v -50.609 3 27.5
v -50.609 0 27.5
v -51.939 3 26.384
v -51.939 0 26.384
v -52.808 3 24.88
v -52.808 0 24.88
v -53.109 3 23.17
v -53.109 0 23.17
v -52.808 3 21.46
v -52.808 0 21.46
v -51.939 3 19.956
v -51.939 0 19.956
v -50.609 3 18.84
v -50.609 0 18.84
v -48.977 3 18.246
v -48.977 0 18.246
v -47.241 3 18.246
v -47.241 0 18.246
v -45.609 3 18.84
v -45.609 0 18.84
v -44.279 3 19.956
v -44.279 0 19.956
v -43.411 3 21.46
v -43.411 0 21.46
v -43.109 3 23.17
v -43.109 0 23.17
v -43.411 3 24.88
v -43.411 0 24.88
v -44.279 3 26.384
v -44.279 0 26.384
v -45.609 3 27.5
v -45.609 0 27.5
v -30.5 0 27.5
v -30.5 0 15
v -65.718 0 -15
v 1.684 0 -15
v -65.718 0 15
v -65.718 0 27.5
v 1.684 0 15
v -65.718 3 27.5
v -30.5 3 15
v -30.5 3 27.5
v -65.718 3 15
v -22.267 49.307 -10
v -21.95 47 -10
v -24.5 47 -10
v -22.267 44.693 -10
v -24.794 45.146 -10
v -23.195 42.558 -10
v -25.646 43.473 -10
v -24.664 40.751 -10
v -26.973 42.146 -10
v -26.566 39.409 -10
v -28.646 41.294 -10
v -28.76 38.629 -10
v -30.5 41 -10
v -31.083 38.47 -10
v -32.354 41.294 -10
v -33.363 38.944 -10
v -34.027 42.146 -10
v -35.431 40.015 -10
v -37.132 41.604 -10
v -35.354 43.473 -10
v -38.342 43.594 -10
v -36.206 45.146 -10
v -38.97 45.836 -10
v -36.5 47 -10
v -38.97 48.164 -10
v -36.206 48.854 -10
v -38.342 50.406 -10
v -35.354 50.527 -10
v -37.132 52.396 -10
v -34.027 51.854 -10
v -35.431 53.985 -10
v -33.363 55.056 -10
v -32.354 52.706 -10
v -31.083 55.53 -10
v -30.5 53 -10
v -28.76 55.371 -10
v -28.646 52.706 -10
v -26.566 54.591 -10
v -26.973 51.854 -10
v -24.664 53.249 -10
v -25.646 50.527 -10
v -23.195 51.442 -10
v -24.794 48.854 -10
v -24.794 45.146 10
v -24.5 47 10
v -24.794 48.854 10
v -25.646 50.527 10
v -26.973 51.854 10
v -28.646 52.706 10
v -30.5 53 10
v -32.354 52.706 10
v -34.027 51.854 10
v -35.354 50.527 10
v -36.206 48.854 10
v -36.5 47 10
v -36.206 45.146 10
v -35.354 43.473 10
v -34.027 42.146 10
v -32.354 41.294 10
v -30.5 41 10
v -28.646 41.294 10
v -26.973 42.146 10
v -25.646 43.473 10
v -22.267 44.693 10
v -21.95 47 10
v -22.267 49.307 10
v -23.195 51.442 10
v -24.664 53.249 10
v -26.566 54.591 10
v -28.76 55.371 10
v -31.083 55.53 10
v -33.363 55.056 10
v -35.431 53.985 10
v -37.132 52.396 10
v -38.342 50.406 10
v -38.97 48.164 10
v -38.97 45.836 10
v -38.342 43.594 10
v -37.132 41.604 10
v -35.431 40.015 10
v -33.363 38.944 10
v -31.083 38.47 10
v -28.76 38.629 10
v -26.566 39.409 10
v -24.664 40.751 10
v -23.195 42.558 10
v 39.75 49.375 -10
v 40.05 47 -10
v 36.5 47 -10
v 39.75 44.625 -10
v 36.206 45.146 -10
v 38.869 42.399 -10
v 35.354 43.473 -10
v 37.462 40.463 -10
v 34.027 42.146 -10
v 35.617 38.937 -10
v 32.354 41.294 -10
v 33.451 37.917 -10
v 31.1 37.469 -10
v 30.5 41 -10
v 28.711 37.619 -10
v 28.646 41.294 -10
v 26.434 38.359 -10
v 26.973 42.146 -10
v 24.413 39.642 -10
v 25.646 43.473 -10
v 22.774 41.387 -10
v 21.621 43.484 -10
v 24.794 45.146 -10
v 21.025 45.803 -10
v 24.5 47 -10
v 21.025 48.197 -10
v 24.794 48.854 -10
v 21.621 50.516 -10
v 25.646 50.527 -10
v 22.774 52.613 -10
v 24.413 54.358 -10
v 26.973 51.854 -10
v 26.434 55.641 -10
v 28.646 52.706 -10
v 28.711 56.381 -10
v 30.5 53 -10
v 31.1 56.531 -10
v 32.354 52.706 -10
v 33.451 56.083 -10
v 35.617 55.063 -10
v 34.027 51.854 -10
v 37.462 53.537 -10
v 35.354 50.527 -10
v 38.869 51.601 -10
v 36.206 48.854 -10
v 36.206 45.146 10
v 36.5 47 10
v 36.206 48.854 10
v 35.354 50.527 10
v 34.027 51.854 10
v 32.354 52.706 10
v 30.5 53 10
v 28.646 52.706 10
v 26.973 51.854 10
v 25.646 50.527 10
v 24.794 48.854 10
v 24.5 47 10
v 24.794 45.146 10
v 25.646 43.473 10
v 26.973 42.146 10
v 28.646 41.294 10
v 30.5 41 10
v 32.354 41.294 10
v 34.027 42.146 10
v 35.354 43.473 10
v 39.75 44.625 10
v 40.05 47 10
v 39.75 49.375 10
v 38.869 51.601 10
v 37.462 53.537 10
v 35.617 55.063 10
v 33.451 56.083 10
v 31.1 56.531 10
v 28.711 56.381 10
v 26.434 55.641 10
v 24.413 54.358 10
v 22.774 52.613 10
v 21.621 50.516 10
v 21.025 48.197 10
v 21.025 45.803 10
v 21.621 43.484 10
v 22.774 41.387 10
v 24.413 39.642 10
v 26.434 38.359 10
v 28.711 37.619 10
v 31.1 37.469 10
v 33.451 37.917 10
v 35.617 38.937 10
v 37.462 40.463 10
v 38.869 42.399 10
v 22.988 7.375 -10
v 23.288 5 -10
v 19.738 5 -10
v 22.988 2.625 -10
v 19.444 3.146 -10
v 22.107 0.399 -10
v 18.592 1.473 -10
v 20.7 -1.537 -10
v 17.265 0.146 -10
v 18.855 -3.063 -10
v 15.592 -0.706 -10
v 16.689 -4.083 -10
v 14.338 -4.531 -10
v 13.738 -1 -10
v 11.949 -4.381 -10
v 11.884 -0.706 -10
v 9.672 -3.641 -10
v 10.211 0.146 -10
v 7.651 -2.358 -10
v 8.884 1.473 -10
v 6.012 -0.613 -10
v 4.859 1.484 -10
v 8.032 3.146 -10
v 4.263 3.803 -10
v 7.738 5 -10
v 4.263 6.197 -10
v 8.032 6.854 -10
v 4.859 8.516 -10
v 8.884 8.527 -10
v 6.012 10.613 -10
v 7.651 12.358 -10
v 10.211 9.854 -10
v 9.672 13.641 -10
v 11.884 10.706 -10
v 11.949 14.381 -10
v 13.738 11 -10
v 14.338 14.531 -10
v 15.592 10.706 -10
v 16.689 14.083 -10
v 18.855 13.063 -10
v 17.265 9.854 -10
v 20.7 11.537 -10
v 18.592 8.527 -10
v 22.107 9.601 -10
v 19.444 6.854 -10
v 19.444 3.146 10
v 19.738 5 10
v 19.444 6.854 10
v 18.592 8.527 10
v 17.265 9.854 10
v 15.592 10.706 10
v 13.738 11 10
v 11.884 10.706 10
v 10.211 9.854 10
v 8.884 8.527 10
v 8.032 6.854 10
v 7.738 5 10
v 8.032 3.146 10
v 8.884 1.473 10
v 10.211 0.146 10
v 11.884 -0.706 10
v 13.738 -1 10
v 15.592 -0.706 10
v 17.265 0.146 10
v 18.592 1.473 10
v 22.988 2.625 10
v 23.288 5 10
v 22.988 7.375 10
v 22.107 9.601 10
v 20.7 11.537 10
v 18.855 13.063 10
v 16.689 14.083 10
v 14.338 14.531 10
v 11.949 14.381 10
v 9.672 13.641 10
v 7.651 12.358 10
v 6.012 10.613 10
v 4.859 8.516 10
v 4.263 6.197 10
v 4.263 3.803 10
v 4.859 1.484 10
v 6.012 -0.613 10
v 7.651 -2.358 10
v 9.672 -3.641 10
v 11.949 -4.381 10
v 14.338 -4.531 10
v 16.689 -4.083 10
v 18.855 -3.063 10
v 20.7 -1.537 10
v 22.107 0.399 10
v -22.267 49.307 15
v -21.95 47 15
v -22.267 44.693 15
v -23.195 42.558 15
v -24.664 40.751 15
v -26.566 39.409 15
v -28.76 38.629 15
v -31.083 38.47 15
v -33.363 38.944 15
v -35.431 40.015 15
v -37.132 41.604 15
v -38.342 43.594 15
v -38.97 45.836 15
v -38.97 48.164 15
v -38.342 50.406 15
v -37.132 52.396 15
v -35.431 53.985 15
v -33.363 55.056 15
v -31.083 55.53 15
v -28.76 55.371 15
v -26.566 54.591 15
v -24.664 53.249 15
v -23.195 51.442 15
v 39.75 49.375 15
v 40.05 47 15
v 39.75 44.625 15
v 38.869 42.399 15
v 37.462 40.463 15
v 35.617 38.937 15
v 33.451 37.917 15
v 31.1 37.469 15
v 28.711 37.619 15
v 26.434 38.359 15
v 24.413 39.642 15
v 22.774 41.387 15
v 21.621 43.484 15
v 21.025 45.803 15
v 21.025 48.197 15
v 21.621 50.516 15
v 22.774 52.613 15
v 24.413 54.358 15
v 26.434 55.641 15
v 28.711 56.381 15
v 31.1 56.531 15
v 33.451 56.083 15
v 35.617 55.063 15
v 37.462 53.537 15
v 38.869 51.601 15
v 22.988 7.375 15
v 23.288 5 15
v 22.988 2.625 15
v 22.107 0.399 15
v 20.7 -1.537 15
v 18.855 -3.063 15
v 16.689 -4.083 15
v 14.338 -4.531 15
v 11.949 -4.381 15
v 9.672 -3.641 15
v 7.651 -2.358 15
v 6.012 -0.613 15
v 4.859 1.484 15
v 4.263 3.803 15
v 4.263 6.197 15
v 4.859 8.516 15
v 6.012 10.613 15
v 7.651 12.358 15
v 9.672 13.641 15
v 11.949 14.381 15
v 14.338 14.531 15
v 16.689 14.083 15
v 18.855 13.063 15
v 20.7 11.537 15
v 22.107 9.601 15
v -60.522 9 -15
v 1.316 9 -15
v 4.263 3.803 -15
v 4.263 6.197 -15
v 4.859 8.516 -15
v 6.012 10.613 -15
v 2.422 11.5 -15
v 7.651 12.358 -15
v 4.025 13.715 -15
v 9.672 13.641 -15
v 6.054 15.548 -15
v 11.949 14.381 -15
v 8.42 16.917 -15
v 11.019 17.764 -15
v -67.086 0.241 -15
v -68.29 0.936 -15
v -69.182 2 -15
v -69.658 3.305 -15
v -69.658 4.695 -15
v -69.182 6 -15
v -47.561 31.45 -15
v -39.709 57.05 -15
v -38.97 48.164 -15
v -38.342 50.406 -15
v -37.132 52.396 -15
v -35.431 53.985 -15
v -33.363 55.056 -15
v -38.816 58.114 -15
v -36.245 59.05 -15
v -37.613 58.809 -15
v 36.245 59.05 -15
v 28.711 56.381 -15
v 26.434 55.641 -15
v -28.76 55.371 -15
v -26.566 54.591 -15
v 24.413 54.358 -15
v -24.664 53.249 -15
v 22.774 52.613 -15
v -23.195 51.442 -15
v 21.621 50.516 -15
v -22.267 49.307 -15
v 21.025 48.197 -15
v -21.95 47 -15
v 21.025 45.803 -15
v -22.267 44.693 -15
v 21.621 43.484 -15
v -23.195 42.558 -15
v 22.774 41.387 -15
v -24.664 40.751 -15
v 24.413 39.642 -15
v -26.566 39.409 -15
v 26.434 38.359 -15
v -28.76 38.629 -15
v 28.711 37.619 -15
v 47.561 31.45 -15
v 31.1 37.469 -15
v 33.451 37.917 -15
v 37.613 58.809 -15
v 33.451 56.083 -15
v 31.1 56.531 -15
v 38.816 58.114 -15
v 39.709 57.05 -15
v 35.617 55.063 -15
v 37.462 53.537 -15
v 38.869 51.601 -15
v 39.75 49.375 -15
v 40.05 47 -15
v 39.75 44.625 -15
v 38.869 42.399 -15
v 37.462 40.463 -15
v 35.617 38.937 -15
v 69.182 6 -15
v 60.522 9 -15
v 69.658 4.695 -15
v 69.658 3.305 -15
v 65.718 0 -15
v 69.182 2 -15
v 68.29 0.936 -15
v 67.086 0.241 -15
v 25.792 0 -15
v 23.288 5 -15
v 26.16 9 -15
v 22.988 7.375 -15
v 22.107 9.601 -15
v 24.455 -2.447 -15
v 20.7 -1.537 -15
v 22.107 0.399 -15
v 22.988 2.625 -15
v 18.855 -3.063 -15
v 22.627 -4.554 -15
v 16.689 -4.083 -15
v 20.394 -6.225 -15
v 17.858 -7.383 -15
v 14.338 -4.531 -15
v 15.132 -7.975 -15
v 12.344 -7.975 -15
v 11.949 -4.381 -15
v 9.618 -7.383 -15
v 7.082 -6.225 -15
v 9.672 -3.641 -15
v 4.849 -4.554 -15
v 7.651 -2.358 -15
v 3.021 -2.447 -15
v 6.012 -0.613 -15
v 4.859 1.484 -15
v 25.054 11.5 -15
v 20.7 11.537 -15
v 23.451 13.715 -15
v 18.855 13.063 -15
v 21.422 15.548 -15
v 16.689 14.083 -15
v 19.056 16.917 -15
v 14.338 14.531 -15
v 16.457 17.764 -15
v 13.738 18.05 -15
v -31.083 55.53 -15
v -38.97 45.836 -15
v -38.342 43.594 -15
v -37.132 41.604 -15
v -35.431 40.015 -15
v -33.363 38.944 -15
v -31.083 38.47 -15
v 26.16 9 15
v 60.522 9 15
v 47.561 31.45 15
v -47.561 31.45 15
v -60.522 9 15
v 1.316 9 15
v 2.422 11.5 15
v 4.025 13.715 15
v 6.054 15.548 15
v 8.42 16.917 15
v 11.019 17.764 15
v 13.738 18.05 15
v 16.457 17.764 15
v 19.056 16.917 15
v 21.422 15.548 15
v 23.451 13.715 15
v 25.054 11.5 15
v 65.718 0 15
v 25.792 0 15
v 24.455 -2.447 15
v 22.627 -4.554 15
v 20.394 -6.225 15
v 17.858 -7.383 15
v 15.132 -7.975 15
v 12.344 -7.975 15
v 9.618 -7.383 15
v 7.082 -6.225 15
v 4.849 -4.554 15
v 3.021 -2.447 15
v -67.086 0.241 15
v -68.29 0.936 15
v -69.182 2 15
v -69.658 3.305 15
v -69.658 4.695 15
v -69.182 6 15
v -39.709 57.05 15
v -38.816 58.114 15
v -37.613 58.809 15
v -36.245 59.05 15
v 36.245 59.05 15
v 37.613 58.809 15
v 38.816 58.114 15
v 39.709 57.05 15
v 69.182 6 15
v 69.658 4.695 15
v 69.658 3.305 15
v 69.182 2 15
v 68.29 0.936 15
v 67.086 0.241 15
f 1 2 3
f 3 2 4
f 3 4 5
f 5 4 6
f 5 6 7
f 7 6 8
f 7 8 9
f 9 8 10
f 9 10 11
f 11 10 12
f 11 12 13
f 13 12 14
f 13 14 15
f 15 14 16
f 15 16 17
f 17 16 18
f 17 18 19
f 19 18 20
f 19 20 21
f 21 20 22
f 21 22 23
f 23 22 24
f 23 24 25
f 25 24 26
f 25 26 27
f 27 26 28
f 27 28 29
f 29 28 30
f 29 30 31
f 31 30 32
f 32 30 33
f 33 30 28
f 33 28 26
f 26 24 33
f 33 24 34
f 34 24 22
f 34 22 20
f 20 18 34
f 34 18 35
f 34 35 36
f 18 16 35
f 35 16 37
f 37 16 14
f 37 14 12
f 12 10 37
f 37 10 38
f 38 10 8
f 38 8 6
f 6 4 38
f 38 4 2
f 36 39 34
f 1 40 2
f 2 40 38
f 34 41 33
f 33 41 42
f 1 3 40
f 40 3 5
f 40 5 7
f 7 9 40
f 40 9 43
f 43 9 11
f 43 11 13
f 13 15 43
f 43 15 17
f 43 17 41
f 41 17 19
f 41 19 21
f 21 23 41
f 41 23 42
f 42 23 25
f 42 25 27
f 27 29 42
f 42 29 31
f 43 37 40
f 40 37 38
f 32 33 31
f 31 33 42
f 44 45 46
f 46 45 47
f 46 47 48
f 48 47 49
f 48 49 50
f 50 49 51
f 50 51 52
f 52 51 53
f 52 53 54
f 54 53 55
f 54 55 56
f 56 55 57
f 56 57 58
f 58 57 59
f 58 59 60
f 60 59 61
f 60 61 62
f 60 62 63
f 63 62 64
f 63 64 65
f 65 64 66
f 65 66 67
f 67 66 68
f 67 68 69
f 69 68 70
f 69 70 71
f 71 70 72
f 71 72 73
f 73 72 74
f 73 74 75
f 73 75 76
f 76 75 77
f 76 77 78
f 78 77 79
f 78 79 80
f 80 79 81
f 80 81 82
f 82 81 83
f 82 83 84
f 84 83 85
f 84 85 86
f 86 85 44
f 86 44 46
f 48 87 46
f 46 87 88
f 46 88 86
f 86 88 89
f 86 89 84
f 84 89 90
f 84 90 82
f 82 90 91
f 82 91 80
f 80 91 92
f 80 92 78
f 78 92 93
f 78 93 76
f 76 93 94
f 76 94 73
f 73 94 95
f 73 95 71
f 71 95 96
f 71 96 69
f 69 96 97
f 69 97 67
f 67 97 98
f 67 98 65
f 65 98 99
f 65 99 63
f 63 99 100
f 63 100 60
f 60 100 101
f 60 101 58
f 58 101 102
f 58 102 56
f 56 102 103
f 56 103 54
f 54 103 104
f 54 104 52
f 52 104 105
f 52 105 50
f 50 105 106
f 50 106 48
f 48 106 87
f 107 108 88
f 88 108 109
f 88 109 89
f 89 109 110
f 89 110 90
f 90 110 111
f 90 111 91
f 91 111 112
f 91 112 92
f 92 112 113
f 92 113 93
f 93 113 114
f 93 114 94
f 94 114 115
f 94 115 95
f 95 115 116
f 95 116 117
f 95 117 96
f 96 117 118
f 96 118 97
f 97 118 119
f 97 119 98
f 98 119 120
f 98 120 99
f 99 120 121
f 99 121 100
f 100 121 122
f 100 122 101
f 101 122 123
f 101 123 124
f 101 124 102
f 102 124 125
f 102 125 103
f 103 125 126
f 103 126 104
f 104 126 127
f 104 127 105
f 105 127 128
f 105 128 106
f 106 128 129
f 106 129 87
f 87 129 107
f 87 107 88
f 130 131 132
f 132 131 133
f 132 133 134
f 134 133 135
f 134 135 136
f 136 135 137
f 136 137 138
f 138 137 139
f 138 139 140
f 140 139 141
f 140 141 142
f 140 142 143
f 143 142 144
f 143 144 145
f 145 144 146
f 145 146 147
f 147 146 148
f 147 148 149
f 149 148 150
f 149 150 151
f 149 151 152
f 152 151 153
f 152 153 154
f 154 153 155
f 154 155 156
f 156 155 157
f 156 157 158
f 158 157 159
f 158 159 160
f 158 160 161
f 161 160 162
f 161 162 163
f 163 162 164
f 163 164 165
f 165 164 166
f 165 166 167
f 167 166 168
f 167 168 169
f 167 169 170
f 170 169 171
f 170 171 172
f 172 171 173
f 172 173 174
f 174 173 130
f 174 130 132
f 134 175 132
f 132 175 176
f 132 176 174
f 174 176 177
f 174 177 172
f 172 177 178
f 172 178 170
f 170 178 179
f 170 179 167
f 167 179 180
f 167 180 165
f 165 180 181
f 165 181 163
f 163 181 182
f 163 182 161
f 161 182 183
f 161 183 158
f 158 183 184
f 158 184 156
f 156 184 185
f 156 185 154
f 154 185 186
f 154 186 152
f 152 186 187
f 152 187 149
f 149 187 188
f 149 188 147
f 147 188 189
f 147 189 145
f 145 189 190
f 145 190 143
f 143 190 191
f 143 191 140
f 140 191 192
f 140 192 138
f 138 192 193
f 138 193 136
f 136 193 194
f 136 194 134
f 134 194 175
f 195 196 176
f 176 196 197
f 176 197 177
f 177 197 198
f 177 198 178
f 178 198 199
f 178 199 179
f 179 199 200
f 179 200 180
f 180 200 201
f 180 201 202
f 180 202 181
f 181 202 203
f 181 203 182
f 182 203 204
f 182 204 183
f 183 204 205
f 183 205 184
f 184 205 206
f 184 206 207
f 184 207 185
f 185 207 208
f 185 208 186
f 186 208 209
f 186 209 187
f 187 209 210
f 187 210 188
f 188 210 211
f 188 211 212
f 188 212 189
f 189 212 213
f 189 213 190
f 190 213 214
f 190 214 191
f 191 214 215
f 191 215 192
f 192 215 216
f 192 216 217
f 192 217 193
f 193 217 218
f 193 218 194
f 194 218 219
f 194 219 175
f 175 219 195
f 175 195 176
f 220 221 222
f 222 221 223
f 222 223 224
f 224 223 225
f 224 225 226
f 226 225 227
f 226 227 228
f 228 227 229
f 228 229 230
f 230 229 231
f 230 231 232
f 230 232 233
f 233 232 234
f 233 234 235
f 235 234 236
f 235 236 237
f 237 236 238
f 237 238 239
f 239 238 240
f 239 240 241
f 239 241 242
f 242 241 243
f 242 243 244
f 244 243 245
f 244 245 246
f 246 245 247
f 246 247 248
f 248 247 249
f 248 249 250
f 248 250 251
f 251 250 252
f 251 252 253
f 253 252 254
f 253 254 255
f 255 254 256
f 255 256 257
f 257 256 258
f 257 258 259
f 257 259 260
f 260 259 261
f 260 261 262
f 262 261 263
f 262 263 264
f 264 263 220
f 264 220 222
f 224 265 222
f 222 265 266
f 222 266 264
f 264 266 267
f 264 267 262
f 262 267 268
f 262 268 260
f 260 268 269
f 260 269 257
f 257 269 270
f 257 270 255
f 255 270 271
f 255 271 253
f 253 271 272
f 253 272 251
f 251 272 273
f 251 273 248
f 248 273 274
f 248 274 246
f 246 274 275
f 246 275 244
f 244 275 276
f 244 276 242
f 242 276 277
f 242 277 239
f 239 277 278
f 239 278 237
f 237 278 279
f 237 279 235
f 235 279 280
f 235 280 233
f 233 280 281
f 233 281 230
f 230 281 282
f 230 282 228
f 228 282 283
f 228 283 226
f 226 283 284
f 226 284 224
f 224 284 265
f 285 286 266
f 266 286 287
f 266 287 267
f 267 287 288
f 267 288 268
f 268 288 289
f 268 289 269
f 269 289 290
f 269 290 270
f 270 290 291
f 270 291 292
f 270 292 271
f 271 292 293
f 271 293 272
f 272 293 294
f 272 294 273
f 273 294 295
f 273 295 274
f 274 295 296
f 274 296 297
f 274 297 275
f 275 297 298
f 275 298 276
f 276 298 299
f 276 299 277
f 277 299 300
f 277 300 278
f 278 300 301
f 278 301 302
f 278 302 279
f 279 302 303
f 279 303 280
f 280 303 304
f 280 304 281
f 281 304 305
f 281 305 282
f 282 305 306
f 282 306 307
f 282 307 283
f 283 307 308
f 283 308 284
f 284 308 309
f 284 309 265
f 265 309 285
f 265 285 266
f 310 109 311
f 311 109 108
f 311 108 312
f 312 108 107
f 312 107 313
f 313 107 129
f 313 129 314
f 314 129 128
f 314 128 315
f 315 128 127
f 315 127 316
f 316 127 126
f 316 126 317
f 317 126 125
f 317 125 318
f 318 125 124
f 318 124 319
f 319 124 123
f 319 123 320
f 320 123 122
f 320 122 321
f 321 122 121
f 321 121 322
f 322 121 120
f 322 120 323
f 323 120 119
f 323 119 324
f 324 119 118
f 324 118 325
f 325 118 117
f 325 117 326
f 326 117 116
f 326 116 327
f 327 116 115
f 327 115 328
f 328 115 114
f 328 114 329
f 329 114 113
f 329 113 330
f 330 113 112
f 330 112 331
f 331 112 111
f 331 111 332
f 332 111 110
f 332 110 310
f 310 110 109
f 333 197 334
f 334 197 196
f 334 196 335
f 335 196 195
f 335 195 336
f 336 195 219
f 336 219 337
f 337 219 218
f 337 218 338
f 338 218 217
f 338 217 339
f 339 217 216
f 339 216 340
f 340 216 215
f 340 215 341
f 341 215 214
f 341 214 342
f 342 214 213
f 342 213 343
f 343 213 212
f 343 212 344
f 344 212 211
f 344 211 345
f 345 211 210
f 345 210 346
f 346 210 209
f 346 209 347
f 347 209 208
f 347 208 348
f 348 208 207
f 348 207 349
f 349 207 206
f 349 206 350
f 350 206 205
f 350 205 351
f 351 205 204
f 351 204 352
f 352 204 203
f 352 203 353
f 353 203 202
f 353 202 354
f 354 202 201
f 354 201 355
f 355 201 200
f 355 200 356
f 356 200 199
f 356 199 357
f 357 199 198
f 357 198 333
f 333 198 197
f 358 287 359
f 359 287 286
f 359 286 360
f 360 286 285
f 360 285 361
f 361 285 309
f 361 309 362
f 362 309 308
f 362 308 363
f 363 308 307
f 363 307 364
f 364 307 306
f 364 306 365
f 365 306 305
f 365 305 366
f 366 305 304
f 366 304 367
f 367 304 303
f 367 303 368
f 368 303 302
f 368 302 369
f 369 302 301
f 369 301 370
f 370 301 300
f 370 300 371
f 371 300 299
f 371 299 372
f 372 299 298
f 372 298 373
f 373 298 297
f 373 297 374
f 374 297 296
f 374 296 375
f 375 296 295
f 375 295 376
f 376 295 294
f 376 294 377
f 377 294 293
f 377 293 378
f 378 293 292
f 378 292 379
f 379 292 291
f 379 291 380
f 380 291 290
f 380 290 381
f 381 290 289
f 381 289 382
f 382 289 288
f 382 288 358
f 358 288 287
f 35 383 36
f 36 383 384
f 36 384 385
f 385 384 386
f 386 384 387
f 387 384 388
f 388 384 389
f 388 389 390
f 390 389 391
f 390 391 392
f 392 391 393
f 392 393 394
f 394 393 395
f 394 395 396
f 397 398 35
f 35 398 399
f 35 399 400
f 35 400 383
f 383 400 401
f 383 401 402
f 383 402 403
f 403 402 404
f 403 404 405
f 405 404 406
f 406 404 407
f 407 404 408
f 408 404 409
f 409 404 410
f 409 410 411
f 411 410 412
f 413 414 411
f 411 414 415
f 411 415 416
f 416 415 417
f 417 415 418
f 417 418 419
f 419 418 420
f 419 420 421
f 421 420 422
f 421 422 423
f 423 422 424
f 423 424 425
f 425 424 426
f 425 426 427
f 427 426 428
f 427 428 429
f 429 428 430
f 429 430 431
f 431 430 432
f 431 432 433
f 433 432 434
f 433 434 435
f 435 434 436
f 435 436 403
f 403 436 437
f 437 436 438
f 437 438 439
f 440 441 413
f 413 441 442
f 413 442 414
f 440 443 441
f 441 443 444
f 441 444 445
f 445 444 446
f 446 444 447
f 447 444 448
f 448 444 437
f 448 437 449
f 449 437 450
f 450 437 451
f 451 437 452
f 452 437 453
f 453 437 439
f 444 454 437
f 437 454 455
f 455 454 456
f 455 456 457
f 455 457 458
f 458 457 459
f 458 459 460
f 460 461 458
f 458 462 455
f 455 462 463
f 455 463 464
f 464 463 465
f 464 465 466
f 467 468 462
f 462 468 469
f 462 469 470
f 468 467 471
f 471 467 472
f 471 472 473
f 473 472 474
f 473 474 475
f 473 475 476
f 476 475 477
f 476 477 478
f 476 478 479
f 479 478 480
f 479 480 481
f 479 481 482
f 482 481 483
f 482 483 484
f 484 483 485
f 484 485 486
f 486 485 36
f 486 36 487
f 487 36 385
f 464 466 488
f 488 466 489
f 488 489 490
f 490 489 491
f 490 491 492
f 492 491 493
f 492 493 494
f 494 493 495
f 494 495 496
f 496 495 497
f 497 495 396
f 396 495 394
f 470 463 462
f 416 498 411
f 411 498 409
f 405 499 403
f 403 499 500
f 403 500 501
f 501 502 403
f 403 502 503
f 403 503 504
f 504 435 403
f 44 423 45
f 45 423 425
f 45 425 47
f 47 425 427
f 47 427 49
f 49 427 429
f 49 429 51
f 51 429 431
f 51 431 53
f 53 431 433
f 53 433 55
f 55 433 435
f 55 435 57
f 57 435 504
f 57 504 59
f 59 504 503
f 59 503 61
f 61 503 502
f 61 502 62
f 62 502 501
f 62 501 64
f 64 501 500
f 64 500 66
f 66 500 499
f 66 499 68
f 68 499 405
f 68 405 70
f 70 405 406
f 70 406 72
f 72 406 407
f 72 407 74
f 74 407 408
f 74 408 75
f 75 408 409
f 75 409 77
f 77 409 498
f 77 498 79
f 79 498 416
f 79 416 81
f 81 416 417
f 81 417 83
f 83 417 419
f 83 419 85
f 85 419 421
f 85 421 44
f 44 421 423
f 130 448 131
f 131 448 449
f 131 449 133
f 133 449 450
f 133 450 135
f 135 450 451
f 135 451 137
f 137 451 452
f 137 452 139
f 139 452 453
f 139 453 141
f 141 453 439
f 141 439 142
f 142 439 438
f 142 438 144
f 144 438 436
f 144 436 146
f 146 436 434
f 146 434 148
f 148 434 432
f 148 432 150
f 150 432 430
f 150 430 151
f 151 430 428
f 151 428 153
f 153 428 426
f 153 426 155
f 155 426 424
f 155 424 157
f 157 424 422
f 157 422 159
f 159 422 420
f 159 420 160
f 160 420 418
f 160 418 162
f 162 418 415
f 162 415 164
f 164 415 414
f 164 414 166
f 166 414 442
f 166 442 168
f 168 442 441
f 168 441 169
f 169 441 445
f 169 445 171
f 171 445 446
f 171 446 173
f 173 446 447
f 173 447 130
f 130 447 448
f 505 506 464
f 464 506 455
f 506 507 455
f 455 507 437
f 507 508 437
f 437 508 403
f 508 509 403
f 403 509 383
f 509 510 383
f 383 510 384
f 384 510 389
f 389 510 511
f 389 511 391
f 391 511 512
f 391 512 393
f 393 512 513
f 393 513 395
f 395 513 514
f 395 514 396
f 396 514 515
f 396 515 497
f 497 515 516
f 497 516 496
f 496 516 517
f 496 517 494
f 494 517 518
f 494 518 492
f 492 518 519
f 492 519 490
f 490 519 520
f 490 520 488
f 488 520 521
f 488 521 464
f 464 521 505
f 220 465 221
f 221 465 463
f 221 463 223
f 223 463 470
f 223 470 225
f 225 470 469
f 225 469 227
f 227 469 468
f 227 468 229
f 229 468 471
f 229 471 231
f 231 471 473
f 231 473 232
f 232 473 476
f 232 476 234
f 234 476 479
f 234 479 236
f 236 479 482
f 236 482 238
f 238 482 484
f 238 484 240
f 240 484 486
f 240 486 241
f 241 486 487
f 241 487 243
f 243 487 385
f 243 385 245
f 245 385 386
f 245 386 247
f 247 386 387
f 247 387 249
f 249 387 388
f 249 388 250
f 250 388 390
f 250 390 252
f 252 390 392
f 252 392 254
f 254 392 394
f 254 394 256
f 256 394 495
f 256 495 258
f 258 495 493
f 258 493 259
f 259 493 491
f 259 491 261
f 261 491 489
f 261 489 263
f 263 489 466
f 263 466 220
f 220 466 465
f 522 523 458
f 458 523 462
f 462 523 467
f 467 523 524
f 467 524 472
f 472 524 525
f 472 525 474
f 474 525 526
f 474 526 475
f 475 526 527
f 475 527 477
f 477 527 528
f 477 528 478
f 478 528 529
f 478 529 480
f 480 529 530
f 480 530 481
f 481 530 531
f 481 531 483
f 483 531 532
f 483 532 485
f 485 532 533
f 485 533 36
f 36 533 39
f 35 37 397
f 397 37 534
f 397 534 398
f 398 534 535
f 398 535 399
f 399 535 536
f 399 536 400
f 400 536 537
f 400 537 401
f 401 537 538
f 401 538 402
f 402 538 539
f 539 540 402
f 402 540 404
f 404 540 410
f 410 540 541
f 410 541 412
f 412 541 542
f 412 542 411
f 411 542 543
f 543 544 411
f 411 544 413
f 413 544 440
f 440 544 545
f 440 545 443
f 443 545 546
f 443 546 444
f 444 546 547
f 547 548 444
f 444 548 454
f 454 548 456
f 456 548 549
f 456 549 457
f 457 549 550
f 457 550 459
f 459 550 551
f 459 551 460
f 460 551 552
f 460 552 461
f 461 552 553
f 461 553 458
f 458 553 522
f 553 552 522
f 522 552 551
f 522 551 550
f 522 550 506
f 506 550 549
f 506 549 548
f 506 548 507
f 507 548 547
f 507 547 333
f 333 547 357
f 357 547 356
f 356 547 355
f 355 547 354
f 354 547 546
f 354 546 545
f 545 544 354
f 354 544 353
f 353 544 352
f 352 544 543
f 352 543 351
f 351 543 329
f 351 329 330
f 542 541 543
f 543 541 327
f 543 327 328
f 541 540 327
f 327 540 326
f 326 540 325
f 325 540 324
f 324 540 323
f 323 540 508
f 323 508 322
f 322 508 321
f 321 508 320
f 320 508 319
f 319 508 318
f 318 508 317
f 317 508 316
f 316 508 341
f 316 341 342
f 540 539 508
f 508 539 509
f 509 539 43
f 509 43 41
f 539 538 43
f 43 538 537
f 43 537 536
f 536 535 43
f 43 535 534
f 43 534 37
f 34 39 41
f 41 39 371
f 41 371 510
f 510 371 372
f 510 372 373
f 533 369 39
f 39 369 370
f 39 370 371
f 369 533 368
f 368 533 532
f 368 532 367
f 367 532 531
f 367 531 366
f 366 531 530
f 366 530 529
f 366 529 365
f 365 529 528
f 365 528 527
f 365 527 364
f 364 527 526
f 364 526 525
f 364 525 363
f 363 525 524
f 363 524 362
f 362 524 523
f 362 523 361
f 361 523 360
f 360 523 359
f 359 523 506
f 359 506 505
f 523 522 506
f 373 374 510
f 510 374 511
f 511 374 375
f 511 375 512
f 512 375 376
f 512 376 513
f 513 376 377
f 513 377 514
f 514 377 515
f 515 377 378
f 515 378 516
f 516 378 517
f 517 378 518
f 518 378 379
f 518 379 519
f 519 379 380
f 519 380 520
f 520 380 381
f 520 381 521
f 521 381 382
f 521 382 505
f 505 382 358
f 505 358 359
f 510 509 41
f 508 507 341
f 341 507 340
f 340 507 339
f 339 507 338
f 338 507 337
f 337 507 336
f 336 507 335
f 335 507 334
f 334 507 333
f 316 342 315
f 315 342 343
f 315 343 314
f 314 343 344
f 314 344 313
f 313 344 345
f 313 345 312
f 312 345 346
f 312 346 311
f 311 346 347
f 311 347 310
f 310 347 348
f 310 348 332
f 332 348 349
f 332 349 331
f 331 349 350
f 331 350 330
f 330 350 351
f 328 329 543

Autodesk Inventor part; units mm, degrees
ref_plane "YZ Plane" through (0, 0, 0) normal (1, 0, 0) x (0, 1, 0)
ref_plane "XZ Plane" through (0, 0, 0) normal (0, 1, 0) x (-1, 0, 0)
ref_plane "XY Plane" through (0, 0, 0) normal (0, 0, 1) x (1, 0, 0)
sketch "Sketch1" plane through (0, 0, 0) normal (0, 0, 1) x (1, 0, 0)
  line L0 (-65.7184, 0) -> (65.7184, 0)
  line L1 (-36.2446, 59.05) -> (36.2446, 59.05)
  circle A0 centre (-30.5, 47) radius 8.55
  line L2 (0, 59.05) -> (0, 0) construction
  circle A1 centre (-30.5, 47) radius 6
  circle A2 centre (30.5, 47) radius 6
  arc A3 (-69.1825, 6) -> (-65.7184, 0) centre (-65.7184, 4) ccw
  arc A4 (-36.2446, 59.05) -> (-39.7087, 57.05) centre (-36.2446, 55.05) ccw
  line L3 (-69.1825, 6) -> (-39.7087, 57.05)
  arc A5 (65.7184, 0) -> (69.1825, 6) centre (65.7184, 4) ccw
  arc A6 (39.7087, 57.05) -> (36.2446, 59.05) centre (36.2446, 55.05) ccw
  line L4 (69.1825, 6) -> (39.7087, 57.05)
  line L5 (-65.7184, 3) -> (-30.5, 3)
  line L6 (-30.5, 3) -> (-30.5, 0)
  line L7 (-30.5, 0) -> (-65.7184, 0)
  line L8 (-65.7184, 0) -> (-65.7184, 3)
  line L9 (-30.5, 38.45) -> (0, 38.45) construction
  line L10 (-30.5, 3) -> (0, 3) construction
  line L11 (0, 38.45) -> (0, 3) construction
  line L12 (-60.5222, 9) -> (-47.5607, 31.45)
  line L13 (-47.5607, 31.45) -> (47.5607, 31.45)
  line L14 (47.5607, 31.45) -> (60.5222, 9)
  line L15 (60.5222, 9) -> (-60.5222, 9)
  circle A7 centre (30.5, 47) radius 9.55
  circle A8 centre (13.738, 5) radius 9.55
  circle A9 centre (13.738, 5) radius 6
  line L16 (-30.5, 47) -> (13.738, 5) construction
  circle A10 centre (13.738, 5) radius 13.05
  point P0 (-65.7184, 1.5)
  point P1 (-48.1092, 0)
  point P2 (-65.7184, 0)
  point P3 (-30.5, 0)
  point P4 (-30.5, 1.5)
  point P5 (0, 20.725)
  point P6 (0, 20.725)
  point P7 (0, 20.725)
  point P8 (25.7921, 0)
  point P9 (1.6838, 0)
  point P10 (26.1598, 9)
  point P11 (1.3161, 9)
  dimension "d1" = 17.1
  dimension "d3" = 3.5
  dimension "d7" = 12
  dimension "d10" = 4
  dimension "d11" = 13
  dimension "d12" = 60
  dimension "d17" = 3
  dimension "d22" = 44
  dimension "d40" = 6
  dimension "d41" = 6
  dimension "d43" = 6
  dimension "d44" = 19.1
  dimension "d45" = 61
  dimension "d46" = 6
  dimension "d49" = 19.1
  dimension "d51" = 5
  dimension "d52" = 61
  dimension "d54" = 26.1
extrude "Extrusion1" add sketch "Sketch1" along normal mid plane 30 contours A3 L3 A4 L1 A6 L4 A5 L0 A10 L15 L14 L13 L12 L6 L5 L8 | A10 L15 A8 L0 | L0 A8 A10 | A10 L15 A8 | L0 A8 L15 A10
extrude "Extrusion2" add sketch "Sketch1" along normal mid plane 20 contours A8 L15 A9 L0 | L0 A9 A8 | A8 L15 A9 | L0 A9 L15 A8 | A0 | A7
extrude "Extrusion3" add sketch "Sketch1" along normal blind 27.5 contours L8 L5 L6 L0
sketch "Sketch2" plane through (-65.7184, 3, 15) normal (0, 1, 0) x (1, 0, 0)
  line L0 (0, -12.5) -> (35.2184, -12.5) projected
  arc A0 (20.1092, -12.5) -> (15.1092, -12.5) centre (17.6092, -8.1699) ccw
  line L1 (35.2184, 0) -> (131.4367, 0) construction
  line L2 (35.2184, 0) -> (35.2184, -12.5) construction
  point P0 (65.7184, 15)
  point P1 (17.6092, -12.5)
  point P2 (17.6092, -3.1699)
  dimension "d21" = 5
  dimension "d25" = 5
extrude "Extrusion4" cut sketch "Sketch2" against normal through all
extrude "Extrusion6" add sketch "Sketch1" against normal blind 15 contours L8 L5 L6 L0
properties part number "EngineMount - Big hole"
